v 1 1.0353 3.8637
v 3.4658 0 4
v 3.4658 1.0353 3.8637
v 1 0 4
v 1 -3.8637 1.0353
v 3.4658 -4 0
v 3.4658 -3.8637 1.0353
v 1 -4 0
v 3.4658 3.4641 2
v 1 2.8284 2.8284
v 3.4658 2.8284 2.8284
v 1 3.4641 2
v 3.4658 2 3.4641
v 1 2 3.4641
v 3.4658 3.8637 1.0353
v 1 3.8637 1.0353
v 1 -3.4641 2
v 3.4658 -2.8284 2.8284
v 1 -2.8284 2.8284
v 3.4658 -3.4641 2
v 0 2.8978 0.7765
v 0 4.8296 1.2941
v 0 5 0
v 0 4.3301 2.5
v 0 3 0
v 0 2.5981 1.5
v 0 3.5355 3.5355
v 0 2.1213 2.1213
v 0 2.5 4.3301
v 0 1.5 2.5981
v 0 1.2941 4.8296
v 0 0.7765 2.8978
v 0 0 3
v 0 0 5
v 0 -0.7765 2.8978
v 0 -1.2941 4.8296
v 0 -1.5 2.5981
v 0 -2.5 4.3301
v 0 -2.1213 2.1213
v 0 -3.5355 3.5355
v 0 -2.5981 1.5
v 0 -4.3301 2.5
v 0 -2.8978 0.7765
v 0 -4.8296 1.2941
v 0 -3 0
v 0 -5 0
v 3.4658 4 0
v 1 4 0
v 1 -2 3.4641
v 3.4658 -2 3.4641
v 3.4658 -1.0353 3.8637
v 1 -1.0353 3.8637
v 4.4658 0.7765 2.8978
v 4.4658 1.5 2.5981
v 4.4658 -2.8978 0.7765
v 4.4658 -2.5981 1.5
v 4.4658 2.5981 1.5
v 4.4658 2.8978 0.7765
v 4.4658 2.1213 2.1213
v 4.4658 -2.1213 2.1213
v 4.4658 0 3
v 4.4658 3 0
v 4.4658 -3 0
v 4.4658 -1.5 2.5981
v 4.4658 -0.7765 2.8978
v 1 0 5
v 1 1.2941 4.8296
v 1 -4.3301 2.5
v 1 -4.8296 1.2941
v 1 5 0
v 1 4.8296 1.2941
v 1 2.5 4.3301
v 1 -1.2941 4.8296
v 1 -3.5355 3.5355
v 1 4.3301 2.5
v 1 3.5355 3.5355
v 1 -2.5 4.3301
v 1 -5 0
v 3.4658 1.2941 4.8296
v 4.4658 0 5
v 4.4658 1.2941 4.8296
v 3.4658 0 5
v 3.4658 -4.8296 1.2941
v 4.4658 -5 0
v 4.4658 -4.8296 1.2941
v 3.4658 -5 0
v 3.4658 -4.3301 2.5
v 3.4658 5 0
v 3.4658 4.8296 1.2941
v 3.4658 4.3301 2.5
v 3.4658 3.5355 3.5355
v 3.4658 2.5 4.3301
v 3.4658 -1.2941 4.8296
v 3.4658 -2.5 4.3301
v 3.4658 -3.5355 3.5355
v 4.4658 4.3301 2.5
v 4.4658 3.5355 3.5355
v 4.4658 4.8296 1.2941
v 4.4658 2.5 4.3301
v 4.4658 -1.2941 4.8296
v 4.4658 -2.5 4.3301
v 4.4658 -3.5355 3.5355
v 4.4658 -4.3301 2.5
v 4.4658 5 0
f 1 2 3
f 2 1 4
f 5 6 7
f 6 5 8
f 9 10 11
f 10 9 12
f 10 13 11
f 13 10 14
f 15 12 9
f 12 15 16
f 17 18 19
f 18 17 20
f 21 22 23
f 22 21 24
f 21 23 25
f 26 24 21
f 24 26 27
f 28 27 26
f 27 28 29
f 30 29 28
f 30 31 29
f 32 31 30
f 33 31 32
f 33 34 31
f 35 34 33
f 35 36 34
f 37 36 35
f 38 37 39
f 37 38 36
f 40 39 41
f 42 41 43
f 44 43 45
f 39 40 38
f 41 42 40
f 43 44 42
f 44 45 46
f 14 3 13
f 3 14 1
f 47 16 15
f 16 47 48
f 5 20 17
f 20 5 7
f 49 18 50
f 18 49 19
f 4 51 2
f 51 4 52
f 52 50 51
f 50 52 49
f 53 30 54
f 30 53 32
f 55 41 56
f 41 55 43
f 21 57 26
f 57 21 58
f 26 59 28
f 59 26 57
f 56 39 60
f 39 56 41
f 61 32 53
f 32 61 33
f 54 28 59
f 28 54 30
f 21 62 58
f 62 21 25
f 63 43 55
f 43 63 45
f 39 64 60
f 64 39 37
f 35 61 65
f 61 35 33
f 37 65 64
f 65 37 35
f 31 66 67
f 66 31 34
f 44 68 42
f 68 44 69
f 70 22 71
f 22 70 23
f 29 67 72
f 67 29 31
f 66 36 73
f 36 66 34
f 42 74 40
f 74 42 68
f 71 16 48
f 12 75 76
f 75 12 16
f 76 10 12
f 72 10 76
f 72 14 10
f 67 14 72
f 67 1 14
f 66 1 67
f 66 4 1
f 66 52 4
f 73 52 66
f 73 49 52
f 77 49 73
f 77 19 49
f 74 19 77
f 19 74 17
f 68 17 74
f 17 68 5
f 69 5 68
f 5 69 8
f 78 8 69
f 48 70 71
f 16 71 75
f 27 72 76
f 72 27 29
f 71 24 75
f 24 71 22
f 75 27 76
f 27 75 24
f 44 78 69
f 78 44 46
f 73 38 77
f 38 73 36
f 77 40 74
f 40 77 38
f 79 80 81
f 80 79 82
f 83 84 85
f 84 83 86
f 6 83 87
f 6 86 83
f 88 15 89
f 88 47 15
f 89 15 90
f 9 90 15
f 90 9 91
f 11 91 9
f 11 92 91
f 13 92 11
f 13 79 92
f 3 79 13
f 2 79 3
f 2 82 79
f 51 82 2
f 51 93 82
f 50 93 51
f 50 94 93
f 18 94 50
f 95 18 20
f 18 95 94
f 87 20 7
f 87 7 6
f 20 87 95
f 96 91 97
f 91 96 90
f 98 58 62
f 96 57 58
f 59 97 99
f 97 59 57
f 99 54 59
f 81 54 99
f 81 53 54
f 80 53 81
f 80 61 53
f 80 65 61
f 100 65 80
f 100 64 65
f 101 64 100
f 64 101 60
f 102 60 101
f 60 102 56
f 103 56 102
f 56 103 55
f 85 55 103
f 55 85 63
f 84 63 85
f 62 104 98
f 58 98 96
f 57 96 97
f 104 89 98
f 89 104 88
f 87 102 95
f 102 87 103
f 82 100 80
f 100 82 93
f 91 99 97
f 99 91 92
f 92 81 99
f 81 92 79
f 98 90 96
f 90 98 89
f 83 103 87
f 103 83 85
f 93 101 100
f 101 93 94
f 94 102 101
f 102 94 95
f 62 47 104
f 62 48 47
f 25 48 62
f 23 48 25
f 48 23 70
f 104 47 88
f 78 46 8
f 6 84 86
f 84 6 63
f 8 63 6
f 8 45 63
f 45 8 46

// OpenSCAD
// file: ../build_environments.scad
// build_environments.scad: modules to build level sections
//

module pool(diameter=10.0, wall_height=2.0, step_width=3.0, connections=[])
{
    difference() {
        union() {
        difference() {
            cylinder(h=0.5,r1=diameter+step_width,r2=diameter+step_width,$fn=48);
            translate([0,0,-0.1])
                cylinder(h=0.7,r1=diameter,r2=diameter,$fn=48);
        }
        difference() {
            cylinder(h=wall_height,r1=diameter+step_width+1.0,r2=diameter+step_width+1.0,$fn=48);
            translate([0,0,-0.1])
                cylinder(h=wall_height+0.2,r1=diameter+step_width,r2=diameter+step_width,$fn=48);
        }
        }
    
        for (c = connections)
        {
            rotate([0,90,0]) {
                angle = atan2(c[1],c[0]);
                rotate([-angle,0,0]) {
                    cylinder(h=diameter+5.0,r1=c[2],r2=c[2],$fn=48);
                }
            }
        }
    }
}

module straight(length=10.0, width=2.0, dy1=0.0, dy2=0.0, dz=0.0)
{
    dims = [0, 0, 0, 0, 0, (dz/length)];
    matrix = [
        [ 1, dims[0], dims[1], 0 ],
        [ dims[2], 1, dims[4], 0 ],
        [ dims[5], dims[3], 1, 0 ],
        [ 0, 0, 0, 1 ]
    ];
    multmatrix(matrix)
    difference() {
        translate([dy1,0,0])
        union() {
            rotate([0,90,0]) {
                difference() {
                    cylinder(h=(length-dy1-dy2),r1=width+1.0,r2=width+1.0,$fn=24);
                    translate([0,0,-0.1])
                        cylinder(h=(length-dy1-dy2+0.2),r1=width,r2=width,$fn=24);
                }
                difference() {
                    cylinder(h=1.0,r1=width+2.0,r2=width+2.0,$fn=24);
                    translate([0,0,-0.1])
                        cylinder(h=1.2,r1=width,r2=width,$fn=24);
                }
                translate([0,0,(length-dy1-dy2)-1.0]) {
                    difference() {
                        cylinder(h=1.0,r1=width+2.0,r2=width+2.0,$fn=24);
                        translate([0,0,-0.1])
                            cylinder(h=1.2,r1=width,r2=width,$fn=24);
                    }
                }
            }
        }
        translate([0,0,-(2*width+4.0)/2])
            cube([3*length,3*length,2*width+4.0],center=true);
    }
}

module curve(p0=[0,0], center=[0,0], dir=1, angle=0.0, width=2.0)
{
    radius = sqrt((p0[0]-center[0])*(p0[0]-center[0]) + (p0[1]-center[1])*(p0[1]-center[1]));
    if (dir == 0) {
        difference() {
            rotate([0,0,-90])
            difference() {
                rotate_extrude(angle = angle, convexity = 10, $fn=32)
                    translate([radius, 0, 0])
                        circle(r = width+1.0,$fn=24);
                rotate([0,0,-1.0])
                    rotate_extrude(angle = angle+2.0, convexity = 10, $fn=32)
                        translate([radius, 0, 0])
                            circle(r = width,$fn=24);
            }
            translate([0,0,-(2*width+4.0)/2])
                cube([5*radius,5*radius,2*width+4.0],center=true);
        }
    }
    else {
        difference() {
            rotate([0,0,90])
            difference() {
                rotate_extrude(angle = -angle, convexity = 10, $fn=32)
                    translate([radius, 0, 0])
                        circle(r = width+1.0,$fn=24);
                rotate([0,0,1.0])
                    rotate_extrude(angle = -angle-2.0, convexity = 10, $fn=32)
                        translate([radius, 0, 0])
                            circle(r = width,$fn=24);
            }
            translate([0,0,-(2*width+4.0)/2])
                cube([5*radius,5*radius,2*width+4.0],center=true);
        }
    }

}

// test pool
//pool(diameter=12.0000, wall_height=3.0000, step_width=3.0000, connections=[[0.0000,-26.0000,2.0000], [23.6074,0.0000,2.0000]]);

// test straight, slope
//straight(length=26.0000, width=2.0000, dy1=11.8322, dy2=6.7082, dz=0.0000);
//straight(length=29.1549, width=12.0000, dy1=0.0000, dy2=0.0000, dz=-15.0000);

// test curve
//curve(p0=[23.6074, 0.0000], center=[23.6074, 5.0000], dir=0, angle=60.1011, width=2.0000);
//curve(p0=[33.6426, 12.4219], center=[37.9771, 9.9295], dir=1, angle=120.4627, width=2.0000);
// main file
use <../build_environments.scad>;
straight(length=4.4658, width=3.0000, dy1=0.0000, dy2=0.0000, dz=0.0000);
